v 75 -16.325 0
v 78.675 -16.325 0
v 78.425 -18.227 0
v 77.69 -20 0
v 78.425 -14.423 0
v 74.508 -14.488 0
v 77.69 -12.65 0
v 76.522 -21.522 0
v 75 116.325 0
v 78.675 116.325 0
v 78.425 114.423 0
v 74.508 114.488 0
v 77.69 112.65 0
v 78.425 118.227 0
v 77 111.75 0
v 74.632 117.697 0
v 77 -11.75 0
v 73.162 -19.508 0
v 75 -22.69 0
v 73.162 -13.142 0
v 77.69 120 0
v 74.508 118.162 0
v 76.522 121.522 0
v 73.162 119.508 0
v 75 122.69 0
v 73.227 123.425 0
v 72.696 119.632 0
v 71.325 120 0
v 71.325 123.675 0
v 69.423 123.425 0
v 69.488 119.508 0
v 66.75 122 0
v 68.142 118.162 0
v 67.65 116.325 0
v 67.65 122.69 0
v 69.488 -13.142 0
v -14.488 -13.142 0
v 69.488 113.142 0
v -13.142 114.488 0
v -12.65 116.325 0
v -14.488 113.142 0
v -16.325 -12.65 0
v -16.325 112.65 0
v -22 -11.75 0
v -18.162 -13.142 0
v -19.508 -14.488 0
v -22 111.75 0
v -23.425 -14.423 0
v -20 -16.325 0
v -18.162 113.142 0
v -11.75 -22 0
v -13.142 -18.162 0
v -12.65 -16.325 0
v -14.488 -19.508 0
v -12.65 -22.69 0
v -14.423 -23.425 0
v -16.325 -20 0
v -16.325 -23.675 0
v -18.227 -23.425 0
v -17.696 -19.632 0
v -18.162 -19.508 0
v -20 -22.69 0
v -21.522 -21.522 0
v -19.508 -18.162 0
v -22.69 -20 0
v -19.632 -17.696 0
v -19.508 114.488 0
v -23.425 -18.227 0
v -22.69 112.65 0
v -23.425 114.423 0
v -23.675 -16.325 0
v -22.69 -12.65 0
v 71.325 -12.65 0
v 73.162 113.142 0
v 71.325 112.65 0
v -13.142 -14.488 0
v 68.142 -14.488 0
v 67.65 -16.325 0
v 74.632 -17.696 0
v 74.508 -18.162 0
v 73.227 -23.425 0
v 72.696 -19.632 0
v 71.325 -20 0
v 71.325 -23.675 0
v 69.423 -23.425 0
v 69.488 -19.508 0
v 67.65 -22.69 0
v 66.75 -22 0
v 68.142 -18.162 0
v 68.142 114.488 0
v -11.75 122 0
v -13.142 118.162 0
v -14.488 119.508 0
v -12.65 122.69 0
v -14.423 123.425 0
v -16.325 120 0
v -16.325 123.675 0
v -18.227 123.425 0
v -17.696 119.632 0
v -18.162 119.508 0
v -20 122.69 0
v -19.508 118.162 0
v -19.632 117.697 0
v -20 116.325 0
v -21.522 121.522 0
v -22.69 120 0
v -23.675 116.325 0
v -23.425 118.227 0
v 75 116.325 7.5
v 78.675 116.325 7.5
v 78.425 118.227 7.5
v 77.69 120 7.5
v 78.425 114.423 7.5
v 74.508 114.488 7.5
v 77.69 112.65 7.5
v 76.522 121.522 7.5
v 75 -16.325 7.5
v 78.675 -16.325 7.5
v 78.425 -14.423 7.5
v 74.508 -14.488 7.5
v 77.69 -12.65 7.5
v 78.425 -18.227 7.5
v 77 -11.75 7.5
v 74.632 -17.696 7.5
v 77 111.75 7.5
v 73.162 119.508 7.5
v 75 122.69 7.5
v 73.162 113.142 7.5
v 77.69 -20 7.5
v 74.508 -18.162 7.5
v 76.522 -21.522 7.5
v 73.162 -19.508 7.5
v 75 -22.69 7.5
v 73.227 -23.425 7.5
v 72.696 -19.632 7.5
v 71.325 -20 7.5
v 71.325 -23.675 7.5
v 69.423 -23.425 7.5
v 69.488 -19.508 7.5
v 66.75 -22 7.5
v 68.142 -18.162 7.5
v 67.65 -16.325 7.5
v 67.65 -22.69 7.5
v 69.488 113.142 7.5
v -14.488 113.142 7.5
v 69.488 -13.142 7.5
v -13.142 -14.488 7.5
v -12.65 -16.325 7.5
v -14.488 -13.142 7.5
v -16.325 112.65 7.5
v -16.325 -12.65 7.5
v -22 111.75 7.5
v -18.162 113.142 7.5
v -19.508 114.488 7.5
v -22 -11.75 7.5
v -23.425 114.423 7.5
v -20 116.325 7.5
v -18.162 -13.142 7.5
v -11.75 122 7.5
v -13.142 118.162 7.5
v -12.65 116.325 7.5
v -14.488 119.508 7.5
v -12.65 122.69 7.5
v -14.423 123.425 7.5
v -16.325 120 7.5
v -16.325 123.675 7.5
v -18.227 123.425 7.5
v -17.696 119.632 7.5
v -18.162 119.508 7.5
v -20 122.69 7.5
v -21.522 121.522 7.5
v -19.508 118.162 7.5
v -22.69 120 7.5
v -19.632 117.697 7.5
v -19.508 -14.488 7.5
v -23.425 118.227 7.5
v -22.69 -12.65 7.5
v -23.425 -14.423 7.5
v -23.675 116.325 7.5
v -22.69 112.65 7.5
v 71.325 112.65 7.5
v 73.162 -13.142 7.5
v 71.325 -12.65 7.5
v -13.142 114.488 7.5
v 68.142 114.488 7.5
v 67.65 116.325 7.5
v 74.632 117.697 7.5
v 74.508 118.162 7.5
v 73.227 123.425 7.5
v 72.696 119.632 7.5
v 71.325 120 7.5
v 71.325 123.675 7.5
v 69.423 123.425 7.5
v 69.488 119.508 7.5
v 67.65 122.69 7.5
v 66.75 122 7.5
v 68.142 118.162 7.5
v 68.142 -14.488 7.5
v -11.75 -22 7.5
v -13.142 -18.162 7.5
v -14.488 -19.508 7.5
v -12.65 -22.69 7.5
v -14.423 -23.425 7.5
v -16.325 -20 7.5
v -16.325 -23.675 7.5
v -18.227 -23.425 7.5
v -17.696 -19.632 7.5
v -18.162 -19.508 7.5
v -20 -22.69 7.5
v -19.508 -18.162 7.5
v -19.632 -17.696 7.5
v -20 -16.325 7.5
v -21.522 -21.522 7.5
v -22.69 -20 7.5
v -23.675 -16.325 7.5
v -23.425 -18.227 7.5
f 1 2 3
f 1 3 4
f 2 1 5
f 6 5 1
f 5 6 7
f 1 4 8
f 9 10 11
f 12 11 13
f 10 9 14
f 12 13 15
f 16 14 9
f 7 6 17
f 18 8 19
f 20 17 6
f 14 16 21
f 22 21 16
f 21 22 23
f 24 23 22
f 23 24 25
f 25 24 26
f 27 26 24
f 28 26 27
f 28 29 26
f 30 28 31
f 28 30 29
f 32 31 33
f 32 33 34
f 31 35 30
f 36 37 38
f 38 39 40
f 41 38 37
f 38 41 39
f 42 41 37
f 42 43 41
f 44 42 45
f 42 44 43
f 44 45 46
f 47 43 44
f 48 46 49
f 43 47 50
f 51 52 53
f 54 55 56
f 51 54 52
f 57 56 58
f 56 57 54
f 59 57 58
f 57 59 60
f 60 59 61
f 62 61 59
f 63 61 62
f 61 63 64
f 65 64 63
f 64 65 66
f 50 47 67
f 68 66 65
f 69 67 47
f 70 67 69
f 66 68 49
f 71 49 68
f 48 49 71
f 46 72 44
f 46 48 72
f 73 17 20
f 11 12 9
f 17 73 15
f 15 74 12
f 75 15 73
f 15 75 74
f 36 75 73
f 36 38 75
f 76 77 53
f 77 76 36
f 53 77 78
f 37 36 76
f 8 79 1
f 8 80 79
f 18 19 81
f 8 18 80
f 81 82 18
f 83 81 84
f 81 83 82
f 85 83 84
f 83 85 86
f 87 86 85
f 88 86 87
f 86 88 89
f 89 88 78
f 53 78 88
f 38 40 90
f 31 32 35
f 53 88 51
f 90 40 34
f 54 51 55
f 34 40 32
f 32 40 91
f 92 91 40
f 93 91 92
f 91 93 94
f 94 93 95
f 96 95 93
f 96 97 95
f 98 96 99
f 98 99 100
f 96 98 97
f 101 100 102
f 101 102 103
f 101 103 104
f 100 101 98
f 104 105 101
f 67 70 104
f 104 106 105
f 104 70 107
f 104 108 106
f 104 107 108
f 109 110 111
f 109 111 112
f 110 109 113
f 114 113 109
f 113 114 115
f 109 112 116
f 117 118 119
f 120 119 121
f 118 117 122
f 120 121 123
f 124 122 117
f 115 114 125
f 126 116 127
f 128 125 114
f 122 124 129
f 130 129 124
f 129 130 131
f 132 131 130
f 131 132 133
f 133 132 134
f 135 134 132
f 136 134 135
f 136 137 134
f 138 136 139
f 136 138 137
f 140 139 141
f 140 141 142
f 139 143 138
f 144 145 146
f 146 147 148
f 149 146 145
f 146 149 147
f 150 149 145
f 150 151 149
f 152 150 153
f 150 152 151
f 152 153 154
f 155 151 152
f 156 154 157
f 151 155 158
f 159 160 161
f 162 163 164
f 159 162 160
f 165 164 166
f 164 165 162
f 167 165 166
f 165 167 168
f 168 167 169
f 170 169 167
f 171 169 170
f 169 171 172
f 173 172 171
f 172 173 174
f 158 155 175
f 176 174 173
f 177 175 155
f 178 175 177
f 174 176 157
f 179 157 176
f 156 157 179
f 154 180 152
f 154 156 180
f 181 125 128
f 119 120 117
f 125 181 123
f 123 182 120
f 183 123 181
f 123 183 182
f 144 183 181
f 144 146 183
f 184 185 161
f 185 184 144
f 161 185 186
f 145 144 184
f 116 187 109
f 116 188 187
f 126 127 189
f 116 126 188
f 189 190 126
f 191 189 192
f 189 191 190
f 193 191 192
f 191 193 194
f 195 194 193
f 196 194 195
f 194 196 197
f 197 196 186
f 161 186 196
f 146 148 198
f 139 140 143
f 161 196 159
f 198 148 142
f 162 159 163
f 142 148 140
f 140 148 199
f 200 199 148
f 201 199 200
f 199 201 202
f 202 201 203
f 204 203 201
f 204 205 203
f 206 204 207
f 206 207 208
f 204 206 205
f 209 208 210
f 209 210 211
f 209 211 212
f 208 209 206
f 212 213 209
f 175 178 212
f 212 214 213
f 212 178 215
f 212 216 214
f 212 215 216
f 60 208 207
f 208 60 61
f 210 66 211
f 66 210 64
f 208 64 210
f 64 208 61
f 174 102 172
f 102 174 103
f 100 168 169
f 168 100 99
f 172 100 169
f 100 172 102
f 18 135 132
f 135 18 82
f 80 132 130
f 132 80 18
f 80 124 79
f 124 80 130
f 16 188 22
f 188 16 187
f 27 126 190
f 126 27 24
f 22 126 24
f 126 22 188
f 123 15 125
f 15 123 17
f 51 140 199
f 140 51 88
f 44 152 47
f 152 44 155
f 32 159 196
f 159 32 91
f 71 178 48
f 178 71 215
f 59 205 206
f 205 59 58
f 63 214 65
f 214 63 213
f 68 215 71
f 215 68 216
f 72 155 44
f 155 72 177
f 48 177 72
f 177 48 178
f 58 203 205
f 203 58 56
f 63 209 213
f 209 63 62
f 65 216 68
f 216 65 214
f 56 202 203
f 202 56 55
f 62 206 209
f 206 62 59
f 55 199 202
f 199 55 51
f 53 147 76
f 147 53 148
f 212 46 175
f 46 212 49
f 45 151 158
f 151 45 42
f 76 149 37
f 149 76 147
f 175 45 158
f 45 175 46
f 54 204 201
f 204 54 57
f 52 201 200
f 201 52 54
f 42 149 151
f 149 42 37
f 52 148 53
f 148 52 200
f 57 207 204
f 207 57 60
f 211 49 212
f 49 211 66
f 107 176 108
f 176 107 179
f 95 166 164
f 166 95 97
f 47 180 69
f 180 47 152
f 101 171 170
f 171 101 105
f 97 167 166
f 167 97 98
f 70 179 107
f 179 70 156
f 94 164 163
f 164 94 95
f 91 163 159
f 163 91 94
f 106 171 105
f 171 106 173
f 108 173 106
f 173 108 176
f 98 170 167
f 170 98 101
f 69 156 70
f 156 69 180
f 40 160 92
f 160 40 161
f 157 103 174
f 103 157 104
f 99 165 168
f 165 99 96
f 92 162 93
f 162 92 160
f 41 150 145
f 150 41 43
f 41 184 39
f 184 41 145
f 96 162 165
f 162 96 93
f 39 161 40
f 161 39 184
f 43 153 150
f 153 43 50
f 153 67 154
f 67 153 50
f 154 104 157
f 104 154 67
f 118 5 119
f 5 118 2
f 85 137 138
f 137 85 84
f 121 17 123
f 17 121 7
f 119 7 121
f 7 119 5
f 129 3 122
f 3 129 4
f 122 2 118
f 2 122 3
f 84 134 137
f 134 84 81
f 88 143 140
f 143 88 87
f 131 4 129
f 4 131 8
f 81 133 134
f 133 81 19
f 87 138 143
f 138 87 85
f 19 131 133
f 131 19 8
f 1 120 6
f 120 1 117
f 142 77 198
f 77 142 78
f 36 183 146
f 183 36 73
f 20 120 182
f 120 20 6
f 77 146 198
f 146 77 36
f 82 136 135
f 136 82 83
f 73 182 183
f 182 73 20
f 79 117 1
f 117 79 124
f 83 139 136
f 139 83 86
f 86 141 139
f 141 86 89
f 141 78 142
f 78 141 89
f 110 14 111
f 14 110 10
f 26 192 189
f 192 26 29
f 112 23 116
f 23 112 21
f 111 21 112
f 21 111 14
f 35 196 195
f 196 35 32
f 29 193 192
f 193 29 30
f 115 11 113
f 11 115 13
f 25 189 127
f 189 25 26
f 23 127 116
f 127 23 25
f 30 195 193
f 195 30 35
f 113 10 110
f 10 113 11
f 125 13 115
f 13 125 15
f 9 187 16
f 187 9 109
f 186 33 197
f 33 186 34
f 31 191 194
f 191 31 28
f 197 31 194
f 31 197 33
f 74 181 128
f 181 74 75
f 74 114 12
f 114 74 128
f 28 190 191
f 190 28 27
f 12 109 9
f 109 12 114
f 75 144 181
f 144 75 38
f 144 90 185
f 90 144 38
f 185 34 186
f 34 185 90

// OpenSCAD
box_w=99;
box_l=144;
box_h=7.5;

corner_r=5;
corner_h=3;

wall_thickness=2;

bat_center_x=55/2;
bat_center_y=100/2;

allthread_diam=7.35; // quarter inch

difference() {
    minkowski() {
        translate([bat_center_x,bat_center_y,(box_h-corner_h)/2]) {
            cube([box_w-corner_r*2,
                  box_l-corner_r*2,
                  box_h-corner_h], center=true);
        }
        cylinder(r=corner_r,corner_h, center=false);
    }
    
    for (x_offset = [0:1]) for (y_offset = [0:1])
    translate([bat_center_x-(box_w/2)+wall_thickness+allthread_diam/2 + x_offset*(box_w-wall_thickness*2-allthread_diam), bat_center_y-(box_l/2)+wall_thickness + allthread_diam/2 + y_offset*(box_l-wall_thickness*2-allthread_diam), 0]) {
        cylinder(d=allthread_diam,h=box_h);
    }
}


for (x_offset = [0:1]) for (y_offset = [0:1])
translate([bat_center_x-(box_w/2)+wall_thickness+allthread_diam/2 + x_offset*(box_w-wall_thickness*2-allthread_diam), bat_center_y-(box_l/2)+wall_thickness + allthread_diam/2 + y_offset*(box_l-wall_thickness*2-allthread_diam), 0]) {
    difference() {
        cylinder(d=allthread_diam*2,h=box_h);
        cylinder(d=allthread_diam,h=box_h);
    }
}
